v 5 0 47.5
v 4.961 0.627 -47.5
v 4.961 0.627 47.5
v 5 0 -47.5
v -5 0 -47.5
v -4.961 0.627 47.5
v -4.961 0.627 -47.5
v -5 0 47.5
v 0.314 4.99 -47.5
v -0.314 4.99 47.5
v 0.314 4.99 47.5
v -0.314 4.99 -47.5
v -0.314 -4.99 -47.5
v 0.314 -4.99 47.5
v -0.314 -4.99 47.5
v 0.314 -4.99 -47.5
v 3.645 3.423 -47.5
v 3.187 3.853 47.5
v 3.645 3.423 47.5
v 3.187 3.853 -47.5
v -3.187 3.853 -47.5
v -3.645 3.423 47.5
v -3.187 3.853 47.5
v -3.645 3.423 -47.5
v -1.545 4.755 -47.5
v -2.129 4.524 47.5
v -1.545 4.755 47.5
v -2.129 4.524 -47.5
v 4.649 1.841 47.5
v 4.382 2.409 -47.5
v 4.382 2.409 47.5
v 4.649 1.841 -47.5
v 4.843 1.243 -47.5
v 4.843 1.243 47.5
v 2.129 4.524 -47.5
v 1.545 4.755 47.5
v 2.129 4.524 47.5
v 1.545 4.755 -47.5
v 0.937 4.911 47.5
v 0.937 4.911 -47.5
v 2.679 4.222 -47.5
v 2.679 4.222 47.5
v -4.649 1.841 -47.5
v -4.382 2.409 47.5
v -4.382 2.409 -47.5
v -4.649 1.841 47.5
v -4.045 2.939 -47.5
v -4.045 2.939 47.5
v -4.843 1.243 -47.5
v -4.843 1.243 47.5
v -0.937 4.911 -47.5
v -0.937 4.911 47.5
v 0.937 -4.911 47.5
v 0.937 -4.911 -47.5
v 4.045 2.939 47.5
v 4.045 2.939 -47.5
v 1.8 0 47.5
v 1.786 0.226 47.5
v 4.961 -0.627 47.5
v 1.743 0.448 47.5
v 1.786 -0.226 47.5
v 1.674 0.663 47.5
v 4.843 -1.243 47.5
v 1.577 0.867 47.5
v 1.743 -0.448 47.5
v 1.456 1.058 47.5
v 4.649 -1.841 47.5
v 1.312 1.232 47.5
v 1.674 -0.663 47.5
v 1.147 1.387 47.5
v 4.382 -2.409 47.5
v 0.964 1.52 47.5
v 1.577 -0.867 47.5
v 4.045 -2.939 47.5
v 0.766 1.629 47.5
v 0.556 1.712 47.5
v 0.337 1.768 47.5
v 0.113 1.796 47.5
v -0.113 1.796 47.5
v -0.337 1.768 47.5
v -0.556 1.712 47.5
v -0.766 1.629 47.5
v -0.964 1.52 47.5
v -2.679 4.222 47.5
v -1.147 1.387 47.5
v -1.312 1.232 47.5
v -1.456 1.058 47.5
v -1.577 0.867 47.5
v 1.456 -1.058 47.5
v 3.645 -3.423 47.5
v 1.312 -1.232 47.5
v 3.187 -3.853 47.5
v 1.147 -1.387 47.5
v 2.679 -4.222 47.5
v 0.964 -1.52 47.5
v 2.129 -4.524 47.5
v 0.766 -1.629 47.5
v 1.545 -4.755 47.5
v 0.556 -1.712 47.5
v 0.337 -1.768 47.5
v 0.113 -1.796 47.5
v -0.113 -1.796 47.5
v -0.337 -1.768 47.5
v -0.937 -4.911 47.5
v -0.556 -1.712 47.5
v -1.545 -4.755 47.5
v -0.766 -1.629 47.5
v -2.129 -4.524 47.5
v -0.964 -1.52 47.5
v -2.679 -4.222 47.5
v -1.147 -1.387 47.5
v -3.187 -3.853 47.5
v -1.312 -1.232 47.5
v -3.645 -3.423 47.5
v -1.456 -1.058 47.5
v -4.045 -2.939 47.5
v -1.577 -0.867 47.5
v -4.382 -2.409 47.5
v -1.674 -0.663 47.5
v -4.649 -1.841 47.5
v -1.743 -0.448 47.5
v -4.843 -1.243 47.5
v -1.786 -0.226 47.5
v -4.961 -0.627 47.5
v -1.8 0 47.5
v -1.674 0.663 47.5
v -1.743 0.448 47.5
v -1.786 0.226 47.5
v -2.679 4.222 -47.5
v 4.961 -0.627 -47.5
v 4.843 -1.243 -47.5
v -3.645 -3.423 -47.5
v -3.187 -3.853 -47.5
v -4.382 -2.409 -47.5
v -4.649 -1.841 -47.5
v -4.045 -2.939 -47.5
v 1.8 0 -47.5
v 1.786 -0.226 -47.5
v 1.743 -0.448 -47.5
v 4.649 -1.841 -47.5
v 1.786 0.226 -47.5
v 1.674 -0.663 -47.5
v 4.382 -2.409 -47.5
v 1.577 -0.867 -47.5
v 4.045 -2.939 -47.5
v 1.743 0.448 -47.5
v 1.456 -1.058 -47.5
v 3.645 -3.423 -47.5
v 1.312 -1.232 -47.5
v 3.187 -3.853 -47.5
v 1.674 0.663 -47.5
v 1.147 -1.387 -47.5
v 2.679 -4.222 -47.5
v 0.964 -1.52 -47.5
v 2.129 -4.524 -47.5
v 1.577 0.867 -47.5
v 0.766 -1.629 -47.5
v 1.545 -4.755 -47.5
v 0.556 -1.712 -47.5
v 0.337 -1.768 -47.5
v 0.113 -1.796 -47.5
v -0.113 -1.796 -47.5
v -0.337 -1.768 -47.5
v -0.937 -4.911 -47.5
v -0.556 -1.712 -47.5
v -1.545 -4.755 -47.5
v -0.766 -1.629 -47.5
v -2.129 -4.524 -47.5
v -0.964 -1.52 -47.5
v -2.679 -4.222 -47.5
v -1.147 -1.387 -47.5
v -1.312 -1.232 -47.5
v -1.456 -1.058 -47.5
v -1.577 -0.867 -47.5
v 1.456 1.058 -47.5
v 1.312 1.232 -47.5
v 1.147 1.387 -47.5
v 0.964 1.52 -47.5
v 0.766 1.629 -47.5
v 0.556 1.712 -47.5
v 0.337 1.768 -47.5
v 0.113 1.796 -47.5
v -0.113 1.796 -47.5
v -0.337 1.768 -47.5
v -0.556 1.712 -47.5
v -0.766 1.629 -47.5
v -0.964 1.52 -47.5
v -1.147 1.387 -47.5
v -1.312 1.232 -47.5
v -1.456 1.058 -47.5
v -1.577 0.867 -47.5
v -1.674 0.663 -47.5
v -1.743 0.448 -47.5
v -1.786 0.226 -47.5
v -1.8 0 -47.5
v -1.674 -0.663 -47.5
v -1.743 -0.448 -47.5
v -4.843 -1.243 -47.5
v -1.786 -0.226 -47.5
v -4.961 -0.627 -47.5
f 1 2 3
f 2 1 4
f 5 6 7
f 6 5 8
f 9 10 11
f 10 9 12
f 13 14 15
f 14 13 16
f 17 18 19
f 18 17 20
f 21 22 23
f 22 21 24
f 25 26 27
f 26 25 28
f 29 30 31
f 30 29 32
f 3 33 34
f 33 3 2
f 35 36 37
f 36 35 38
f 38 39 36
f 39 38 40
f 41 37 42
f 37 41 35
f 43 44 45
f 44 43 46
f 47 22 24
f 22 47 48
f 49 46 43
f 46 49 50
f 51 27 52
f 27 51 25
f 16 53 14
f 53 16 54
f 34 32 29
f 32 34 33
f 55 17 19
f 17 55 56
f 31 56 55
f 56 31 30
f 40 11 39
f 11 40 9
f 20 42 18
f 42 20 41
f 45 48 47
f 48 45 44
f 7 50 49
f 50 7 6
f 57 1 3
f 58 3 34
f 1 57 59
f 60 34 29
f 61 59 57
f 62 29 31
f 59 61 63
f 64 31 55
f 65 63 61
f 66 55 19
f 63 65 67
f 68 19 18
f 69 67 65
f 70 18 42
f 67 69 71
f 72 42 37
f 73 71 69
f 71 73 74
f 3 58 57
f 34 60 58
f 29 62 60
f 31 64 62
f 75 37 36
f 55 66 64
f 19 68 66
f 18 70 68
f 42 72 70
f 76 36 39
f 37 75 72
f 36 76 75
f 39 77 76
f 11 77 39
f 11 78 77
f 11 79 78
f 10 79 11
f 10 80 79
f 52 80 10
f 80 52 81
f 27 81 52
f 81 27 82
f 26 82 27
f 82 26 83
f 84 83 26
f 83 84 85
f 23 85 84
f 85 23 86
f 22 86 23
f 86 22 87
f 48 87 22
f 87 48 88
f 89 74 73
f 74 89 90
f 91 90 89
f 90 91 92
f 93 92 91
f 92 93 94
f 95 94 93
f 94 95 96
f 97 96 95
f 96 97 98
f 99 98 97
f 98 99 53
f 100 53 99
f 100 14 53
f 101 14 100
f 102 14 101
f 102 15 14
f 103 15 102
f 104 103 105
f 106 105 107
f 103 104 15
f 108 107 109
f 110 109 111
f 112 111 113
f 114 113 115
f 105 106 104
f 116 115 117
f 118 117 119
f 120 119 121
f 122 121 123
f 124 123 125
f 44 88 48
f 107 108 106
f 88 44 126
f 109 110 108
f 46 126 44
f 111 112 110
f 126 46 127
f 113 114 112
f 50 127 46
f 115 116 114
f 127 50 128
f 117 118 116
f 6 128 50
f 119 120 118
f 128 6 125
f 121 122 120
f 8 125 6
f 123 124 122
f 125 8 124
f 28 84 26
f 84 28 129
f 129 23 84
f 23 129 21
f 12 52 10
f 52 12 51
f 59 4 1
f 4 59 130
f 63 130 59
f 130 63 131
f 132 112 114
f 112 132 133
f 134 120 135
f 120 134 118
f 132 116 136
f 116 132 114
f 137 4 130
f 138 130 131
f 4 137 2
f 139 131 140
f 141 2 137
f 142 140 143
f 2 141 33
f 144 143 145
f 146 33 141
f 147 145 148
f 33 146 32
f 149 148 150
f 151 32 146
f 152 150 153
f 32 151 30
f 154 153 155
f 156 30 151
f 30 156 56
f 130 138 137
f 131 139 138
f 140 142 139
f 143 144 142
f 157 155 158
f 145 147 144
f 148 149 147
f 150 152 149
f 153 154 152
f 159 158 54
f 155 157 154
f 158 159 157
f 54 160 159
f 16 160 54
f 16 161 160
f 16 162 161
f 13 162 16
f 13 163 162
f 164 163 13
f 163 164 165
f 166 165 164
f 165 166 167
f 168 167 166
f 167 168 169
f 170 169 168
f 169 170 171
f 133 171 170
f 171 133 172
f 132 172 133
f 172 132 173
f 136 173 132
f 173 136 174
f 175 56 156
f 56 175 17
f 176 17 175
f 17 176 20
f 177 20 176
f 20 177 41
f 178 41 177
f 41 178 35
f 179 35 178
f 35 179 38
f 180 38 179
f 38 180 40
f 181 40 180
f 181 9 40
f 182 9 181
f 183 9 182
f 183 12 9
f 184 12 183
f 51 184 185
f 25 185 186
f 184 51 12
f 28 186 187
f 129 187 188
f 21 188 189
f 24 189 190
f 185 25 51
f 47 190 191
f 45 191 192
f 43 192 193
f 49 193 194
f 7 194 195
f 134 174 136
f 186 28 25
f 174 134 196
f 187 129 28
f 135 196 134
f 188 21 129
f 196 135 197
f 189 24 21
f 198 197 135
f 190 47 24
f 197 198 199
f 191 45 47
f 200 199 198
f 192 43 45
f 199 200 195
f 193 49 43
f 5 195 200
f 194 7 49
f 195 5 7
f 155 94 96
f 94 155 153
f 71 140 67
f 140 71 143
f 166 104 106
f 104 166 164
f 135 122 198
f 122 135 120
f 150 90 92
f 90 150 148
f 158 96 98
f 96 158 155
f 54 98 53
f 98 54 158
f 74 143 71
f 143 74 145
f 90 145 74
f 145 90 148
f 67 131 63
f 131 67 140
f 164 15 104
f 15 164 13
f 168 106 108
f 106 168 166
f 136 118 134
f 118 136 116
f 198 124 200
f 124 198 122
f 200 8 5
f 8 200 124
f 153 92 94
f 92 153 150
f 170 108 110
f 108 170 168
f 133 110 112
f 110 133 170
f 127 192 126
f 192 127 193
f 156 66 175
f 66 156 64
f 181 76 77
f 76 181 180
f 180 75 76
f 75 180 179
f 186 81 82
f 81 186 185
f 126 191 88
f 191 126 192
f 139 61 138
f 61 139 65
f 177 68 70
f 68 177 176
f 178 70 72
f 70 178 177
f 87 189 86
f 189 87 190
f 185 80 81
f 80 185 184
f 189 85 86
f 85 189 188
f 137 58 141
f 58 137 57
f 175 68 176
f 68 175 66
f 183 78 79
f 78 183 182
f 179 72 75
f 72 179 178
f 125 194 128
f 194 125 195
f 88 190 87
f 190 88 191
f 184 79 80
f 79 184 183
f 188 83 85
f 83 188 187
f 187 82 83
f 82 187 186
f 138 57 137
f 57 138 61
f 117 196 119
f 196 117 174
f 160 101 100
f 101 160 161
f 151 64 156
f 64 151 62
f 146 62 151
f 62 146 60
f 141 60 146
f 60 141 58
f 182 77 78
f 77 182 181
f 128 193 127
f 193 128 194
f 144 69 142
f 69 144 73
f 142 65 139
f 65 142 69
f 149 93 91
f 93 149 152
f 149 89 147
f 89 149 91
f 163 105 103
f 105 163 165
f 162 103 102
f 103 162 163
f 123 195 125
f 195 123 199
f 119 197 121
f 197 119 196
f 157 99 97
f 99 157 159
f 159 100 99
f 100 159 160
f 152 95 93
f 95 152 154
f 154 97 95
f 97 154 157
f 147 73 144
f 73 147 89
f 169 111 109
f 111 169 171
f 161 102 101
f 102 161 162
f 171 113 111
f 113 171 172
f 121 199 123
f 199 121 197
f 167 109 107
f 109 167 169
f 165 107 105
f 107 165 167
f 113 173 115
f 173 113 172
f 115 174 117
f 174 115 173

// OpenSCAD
$fn = 50;


difference() {
	union() {
		translate(v = [0, 0, -47.5000000000]) {
			cylinder(h = 95, r = 5.0000000000);
		}
	}
	union() {
		translate(v = [0, 0, -100.0000000000]) {
			cylinder(h = 200, r = 1.8000000000);
		}
	}
}
